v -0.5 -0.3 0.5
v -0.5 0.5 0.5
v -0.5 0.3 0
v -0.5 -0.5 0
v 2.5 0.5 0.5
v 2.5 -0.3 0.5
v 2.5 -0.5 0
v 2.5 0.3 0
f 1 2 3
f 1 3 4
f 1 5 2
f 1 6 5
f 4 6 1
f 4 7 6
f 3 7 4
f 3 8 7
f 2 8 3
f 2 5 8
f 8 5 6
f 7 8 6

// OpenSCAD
// Parallelogram Prism for Stacks of Shapes
// by Slashee the Cow

points = [
    [0,0],
    [0.8,0],
    [1,0.5],
    [0.2,0.5]
    ];

color("orchid")
translate([-0.5,-0.5,0])
rotate([90,0,90])
linear_extrude(3)
polygon(points, [[3,2,1,0]]);
